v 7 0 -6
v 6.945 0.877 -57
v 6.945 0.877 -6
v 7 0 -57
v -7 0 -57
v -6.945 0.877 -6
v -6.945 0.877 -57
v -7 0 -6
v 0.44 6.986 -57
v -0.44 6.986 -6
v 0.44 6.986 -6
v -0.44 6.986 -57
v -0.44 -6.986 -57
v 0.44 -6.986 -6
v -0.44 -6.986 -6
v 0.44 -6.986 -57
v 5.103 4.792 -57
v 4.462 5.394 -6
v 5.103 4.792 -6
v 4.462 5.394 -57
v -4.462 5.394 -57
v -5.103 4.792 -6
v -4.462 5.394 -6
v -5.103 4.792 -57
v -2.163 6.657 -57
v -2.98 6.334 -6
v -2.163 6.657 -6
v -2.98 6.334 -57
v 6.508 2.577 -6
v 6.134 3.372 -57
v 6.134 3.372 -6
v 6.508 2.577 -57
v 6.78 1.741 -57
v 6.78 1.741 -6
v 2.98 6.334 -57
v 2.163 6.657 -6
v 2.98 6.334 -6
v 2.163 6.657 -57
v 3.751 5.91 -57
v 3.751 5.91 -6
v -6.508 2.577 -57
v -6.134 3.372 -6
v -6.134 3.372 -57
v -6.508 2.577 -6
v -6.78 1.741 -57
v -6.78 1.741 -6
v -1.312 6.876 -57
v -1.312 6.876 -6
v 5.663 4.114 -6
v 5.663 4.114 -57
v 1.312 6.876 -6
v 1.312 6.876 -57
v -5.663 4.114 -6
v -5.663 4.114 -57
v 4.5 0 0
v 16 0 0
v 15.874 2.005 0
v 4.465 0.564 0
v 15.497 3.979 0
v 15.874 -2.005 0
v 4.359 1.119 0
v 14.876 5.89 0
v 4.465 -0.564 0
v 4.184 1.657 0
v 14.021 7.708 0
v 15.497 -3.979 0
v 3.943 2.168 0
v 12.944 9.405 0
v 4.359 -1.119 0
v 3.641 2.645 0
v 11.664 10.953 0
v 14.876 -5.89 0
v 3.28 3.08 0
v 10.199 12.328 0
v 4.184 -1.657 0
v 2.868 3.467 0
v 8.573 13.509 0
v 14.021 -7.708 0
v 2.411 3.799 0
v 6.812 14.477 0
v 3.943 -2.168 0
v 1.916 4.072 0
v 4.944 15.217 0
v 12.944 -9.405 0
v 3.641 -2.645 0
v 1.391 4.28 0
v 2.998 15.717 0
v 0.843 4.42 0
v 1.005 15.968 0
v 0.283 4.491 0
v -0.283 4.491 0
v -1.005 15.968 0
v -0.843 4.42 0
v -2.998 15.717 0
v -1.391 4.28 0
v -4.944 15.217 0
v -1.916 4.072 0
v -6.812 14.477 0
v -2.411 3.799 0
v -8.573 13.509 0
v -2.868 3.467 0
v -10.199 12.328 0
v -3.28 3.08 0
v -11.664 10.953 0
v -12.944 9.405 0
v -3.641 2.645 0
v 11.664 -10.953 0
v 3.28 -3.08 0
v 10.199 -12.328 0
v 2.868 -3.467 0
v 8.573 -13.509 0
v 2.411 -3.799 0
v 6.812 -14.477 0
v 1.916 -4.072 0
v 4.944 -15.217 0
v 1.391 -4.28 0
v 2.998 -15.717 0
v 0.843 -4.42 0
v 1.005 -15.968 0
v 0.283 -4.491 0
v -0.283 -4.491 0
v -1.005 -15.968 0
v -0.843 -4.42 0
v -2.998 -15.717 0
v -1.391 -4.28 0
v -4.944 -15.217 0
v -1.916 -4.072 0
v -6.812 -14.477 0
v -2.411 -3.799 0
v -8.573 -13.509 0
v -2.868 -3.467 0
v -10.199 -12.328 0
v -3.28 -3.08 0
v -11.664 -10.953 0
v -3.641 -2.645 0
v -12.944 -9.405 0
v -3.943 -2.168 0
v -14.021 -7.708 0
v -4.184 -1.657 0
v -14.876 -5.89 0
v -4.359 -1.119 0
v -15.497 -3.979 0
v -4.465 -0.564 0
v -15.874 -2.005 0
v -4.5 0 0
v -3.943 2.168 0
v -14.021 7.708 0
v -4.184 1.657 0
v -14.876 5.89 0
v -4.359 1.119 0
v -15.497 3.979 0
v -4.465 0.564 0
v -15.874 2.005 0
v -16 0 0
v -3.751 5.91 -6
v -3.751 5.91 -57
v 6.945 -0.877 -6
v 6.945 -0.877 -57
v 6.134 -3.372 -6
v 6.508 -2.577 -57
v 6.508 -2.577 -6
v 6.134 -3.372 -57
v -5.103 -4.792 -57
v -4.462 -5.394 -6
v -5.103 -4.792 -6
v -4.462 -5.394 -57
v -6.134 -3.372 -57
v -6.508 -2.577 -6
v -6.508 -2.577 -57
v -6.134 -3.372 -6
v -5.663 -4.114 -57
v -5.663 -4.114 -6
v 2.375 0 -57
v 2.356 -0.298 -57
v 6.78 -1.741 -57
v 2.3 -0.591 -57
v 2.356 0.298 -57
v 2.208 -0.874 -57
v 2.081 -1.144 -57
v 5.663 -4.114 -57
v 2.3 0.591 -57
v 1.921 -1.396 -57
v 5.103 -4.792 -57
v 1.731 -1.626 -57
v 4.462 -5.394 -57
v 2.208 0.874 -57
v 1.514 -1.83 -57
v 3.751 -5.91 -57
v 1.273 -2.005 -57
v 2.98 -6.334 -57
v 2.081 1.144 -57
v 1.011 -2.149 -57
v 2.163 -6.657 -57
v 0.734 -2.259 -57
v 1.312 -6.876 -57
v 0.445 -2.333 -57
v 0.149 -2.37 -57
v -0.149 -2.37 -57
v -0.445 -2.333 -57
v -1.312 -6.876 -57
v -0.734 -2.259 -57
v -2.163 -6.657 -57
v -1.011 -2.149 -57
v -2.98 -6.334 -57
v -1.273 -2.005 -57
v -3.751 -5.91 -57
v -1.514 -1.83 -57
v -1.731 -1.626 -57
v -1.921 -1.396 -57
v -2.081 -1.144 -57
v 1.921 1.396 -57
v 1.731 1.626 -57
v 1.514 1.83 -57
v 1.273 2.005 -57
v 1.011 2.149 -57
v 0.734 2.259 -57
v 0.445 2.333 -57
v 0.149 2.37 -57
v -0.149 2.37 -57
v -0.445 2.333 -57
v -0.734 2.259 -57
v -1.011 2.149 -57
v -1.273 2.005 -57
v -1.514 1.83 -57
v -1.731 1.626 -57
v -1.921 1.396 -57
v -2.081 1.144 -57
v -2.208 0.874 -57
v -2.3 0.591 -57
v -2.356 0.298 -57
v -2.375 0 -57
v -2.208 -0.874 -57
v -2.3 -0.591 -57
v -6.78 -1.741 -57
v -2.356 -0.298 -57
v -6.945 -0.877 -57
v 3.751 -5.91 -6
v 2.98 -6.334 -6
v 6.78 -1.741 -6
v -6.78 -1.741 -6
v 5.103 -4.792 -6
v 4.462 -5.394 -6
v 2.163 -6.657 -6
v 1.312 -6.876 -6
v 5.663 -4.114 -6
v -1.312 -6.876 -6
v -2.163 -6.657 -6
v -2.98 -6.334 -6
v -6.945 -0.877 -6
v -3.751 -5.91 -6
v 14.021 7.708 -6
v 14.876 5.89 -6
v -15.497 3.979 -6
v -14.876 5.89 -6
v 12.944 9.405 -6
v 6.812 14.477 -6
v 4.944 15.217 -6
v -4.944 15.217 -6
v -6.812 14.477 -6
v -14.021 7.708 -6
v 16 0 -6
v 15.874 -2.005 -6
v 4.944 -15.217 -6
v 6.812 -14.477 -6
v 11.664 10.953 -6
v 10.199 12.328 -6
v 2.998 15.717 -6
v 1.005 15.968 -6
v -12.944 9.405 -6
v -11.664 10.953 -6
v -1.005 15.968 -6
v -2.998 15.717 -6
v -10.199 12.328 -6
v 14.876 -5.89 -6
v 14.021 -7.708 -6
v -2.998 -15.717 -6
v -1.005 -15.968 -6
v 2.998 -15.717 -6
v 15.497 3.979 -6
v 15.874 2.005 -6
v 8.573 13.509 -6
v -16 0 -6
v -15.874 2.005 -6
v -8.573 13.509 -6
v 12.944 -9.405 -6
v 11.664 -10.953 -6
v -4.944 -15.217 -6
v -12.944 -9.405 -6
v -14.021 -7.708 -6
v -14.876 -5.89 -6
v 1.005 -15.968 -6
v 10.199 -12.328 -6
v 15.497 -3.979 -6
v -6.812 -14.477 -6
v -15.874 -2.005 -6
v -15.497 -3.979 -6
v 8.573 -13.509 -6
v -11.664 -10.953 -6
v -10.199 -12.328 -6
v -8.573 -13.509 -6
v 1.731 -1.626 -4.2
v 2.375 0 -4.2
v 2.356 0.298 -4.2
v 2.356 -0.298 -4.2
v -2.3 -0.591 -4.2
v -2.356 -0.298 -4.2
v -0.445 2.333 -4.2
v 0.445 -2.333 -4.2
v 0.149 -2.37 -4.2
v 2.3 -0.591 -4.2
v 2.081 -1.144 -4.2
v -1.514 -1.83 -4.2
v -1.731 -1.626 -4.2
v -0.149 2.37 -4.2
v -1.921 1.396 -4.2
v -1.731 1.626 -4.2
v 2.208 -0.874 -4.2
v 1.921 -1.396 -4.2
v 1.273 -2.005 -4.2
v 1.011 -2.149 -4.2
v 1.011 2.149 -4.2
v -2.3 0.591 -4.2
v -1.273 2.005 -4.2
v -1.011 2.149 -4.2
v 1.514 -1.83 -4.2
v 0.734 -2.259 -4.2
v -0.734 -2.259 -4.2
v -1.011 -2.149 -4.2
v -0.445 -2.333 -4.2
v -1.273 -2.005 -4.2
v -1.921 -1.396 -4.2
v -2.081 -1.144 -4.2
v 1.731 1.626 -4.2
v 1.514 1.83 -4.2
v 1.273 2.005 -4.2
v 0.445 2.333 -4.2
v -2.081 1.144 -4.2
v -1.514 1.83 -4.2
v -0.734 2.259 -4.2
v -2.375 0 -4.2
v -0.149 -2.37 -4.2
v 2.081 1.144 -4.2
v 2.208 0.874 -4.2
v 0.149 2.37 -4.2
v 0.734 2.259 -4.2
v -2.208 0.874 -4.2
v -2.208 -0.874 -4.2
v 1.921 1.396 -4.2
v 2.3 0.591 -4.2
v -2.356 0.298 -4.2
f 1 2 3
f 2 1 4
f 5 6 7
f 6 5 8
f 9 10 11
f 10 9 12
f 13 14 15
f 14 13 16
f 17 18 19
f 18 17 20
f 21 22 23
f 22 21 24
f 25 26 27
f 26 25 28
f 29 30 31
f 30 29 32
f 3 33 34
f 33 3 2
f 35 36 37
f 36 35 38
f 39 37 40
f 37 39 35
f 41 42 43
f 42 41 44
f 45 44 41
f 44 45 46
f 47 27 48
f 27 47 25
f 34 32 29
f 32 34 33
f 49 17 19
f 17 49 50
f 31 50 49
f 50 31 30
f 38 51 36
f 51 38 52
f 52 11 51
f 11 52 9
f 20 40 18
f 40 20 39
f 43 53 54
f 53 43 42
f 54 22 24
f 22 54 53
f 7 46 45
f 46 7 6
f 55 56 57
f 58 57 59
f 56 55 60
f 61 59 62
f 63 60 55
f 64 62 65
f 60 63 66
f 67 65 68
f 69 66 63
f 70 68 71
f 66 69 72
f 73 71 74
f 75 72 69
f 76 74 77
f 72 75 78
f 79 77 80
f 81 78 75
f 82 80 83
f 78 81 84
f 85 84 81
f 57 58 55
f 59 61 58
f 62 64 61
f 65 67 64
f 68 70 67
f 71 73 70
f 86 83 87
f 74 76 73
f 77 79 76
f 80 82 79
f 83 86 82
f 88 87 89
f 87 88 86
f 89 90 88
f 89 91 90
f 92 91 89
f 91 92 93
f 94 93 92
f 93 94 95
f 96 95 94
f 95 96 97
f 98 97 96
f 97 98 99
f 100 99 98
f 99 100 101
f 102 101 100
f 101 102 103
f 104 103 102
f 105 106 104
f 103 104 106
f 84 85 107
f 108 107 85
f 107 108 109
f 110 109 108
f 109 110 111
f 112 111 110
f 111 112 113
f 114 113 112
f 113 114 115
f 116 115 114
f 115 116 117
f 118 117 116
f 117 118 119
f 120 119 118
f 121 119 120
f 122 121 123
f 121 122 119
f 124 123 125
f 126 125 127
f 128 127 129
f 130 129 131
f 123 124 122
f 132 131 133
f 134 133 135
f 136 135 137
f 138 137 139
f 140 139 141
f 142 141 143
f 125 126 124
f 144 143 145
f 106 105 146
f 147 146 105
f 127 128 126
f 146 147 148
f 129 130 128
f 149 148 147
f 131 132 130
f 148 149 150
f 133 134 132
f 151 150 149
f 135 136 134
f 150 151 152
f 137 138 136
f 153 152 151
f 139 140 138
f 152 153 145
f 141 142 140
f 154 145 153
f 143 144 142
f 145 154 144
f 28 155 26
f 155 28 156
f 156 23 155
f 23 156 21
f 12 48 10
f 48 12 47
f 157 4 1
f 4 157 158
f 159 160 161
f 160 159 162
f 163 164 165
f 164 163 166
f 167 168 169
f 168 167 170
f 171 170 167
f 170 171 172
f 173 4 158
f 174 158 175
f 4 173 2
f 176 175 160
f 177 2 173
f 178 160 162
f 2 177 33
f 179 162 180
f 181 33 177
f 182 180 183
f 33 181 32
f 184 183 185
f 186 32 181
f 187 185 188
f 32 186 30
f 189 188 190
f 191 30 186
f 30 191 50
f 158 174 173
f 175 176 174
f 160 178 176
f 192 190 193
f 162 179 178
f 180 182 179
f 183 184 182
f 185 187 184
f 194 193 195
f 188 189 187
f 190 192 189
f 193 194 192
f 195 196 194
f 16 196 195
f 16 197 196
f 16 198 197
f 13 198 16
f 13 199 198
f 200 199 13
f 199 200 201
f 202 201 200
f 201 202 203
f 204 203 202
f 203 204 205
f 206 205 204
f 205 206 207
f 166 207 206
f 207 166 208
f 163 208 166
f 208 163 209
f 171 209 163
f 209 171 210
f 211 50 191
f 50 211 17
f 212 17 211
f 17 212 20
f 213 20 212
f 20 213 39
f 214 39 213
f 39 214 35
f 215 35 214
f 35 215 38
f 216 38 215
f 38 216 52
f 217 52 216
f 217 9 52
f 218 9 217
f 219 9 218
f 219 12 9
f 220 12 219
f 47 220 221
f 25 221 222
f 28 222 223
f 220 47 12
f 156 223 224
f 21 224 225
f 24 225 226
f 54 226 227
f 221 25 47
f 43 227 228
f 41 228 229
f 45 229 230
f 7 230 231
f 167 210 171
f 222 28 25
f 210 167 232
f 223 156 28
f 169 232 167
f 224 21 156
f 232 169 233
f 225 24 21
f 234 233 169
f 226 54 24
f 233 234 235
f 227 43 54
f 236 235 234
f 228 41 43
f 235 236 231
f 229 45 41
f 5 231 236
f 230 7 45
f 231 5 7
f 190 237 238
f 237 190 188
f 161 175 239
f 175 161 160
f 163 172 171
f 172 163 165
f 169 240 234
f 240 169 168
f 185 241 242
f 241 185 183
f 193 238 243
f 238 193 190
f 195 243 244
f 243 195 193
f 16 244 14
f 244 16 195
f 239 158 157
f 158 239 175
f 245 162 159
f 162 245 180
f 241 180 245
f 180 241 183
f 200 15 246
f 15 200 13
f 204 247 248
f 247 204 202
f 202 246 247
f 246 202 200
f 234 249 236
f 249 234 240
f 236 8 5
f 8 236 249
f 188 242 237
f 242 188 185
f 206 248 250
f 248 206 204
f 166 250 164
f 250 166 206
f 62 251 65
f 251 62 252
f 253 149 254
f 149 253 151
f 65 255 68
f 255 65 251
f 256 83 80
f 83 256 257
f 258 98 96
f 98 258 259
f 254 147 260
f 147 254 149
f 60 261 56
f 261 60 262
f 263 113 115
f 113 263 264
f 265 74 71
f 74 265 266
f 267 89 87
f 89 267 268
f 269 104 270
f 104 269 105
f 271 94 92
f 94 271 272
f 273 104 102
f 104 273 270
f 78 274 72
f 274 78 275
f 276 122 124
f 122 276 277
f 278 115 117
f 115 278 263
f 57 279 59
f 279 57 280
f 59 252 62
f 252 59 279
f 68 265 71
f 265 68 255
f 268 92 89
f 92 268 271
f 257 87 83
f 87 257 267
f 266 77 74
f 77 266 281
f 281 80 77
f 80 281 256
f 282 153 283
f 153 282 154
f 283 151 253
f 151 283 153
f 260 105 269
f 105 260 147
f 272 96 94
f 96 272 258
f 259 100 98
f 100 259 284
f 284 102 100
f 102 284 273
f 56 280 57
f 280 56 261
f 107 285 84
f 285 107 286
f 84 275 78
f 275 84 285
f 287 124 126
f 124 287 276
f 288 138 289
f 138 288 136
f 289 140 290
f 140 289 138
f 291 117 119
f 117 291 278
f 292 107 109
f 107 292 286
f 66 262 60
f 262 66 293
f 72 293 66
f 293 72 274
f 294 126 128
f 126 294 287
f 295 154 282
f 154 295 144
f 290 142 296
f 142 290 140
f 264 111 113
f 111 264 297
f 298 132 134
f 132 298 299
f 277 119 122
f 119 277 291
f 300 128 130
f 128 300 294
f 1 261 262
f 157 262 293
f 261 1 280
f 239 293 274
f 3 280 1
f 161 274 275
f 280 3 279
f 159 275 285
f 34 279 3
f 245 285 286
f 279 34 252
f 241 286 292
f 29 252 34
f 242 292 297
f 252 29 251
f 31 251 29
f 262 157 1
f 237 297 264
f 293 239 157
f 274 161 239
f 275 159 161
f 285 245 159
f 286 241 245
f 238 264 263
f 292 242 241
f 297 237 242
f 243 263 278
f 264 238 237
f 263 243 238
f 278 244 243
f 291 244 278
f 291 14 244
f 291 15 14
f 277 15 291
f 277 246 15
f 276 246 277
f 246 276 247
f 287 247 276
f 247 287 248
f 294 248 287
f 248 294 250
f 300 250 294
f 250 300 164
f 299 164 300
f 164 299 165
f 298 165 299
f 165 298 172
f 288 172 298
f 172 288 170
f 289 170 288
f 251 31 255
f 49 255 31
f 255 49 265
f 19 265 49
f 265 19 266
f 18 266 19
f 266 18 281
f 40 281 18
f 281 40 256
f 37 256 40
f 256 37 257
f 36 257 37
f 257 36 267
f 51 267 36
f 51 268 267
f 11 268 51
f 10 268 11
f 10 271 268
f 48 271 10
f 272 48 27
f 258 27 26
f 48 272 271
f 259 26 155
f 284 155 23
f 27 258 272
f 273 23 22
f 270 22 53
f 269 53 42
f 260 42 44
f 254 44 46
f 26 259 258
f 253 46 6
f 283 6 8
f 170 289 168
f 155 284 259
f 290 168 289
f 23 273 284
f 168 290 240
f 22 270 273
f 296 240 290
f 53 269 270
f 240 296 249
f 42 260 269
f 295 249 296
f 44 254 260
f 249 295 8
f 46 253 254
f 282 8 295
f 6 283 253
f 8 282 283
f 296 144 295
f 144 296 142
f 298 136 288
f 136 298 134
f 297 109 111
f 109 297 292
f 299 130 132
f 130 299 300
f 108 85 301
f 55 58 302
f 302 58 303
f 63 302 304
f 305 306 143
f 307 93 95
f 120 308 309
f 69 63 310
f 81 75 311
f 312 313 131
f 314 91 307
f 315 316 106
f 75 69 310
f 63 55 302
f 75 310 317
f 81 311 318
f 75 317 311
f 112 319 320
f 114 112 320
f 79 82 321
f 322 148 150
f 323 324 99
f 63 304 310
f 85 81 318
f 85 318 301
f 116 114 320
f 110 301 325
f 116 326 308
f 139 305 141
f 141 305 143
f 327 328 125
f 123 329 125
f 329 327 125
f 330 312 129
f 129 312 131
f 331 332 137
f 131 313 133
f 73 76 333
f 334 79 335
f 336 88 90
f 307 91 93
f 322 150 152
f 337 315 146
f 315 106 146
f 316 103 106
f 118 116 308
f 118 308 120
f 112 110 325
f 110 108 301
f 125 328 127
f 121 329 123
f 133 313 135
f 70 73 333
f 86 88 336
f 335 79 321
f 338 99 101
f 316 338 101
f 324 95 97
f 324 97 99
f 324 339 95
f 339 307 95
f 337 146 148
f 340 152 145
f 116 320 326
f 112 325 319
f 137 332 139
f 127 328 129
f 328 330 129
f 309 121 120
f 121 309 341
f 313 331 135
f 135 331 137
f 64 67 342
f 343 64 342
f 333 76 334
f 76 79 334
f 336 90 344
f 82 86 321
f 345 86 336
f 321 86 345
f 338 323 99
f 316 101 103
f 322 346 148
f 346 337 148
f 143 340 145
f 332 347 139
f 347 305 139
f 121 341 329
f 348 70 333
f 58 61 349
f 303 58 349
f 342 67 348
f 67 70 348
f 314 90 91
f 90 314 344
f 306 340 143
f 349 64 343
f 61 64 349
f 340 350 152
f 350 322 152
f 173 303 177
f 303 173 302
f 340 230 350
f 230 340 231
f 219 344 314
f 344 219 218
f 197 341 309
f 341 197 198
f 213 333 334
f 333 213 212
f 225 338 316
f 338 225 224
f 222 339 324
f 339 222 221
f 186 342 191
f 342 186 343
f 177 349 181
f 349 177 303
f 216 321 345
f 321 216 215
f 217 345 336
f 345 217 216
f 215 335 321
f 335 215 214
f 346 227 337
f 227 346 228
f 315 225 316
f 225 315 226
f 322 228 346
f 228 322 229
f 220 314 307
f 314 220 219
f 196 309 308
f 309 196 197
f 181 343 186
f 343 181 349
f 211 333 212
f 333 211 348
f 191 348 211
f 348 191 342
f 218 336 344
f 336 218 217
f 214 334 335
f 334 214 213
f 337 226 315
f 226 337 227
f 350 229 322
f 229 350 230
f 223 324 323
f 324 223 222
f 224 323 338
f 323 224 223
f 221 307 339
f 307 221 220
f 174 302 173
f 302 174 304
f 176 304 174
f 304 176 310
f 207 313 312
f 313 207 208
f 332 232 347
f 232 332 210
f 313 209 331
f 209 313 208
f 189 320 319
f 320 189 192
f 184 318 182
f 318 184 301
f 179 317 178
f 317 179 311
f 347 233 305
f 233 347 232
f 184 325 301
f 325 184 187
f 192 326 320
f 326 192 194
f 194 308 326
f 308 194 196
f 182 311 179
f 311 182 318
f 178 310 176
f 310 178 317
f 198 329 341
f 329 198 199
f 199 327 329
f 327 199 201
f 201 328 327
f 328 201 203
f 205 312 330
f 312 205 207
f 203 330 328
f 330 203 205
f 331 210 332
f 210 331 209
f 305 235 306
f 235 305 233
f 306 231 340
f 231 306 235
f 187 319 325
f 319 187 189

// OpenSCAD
$fn = 50;


difference() {
	union() {
		translate(v = [0, 0, -57.0000000000]) {
			cylinder(h = 57, r = 7.0000000000);
		}
		translate(v = [0, 0, -6.0000000000]) {
			cylinder(h = 6, r = 16.0000000000);
		}
	}
	union() {
		translate(v = [0, 0, 0]) {
			rotate(a = [0, 0, 0]) {
				difference() {
					union() {
						#translate(v = [0, 0, -57.0000000000]) {
							cylinder(h = 57, r = 2.2500000000);
						}
						#translate(v = [0, 0, -4.2000000000]) {
							cylinder(h = 4.2000000000, r = 7.0000000000, r1 = 2.3750000000, r2 = 4.5000000000);
						}
						#translate(v = [0, 0, -57.0000000000]) {
							cylinder(h = 57, r = 2.3750000000);
						}
						#translate(v = [0, 0, -57.0000000000]) {
							cylinder(h = 57, r = 2.2500000000);
						}
					}
					union();
				}
			}
		}
	}
}
